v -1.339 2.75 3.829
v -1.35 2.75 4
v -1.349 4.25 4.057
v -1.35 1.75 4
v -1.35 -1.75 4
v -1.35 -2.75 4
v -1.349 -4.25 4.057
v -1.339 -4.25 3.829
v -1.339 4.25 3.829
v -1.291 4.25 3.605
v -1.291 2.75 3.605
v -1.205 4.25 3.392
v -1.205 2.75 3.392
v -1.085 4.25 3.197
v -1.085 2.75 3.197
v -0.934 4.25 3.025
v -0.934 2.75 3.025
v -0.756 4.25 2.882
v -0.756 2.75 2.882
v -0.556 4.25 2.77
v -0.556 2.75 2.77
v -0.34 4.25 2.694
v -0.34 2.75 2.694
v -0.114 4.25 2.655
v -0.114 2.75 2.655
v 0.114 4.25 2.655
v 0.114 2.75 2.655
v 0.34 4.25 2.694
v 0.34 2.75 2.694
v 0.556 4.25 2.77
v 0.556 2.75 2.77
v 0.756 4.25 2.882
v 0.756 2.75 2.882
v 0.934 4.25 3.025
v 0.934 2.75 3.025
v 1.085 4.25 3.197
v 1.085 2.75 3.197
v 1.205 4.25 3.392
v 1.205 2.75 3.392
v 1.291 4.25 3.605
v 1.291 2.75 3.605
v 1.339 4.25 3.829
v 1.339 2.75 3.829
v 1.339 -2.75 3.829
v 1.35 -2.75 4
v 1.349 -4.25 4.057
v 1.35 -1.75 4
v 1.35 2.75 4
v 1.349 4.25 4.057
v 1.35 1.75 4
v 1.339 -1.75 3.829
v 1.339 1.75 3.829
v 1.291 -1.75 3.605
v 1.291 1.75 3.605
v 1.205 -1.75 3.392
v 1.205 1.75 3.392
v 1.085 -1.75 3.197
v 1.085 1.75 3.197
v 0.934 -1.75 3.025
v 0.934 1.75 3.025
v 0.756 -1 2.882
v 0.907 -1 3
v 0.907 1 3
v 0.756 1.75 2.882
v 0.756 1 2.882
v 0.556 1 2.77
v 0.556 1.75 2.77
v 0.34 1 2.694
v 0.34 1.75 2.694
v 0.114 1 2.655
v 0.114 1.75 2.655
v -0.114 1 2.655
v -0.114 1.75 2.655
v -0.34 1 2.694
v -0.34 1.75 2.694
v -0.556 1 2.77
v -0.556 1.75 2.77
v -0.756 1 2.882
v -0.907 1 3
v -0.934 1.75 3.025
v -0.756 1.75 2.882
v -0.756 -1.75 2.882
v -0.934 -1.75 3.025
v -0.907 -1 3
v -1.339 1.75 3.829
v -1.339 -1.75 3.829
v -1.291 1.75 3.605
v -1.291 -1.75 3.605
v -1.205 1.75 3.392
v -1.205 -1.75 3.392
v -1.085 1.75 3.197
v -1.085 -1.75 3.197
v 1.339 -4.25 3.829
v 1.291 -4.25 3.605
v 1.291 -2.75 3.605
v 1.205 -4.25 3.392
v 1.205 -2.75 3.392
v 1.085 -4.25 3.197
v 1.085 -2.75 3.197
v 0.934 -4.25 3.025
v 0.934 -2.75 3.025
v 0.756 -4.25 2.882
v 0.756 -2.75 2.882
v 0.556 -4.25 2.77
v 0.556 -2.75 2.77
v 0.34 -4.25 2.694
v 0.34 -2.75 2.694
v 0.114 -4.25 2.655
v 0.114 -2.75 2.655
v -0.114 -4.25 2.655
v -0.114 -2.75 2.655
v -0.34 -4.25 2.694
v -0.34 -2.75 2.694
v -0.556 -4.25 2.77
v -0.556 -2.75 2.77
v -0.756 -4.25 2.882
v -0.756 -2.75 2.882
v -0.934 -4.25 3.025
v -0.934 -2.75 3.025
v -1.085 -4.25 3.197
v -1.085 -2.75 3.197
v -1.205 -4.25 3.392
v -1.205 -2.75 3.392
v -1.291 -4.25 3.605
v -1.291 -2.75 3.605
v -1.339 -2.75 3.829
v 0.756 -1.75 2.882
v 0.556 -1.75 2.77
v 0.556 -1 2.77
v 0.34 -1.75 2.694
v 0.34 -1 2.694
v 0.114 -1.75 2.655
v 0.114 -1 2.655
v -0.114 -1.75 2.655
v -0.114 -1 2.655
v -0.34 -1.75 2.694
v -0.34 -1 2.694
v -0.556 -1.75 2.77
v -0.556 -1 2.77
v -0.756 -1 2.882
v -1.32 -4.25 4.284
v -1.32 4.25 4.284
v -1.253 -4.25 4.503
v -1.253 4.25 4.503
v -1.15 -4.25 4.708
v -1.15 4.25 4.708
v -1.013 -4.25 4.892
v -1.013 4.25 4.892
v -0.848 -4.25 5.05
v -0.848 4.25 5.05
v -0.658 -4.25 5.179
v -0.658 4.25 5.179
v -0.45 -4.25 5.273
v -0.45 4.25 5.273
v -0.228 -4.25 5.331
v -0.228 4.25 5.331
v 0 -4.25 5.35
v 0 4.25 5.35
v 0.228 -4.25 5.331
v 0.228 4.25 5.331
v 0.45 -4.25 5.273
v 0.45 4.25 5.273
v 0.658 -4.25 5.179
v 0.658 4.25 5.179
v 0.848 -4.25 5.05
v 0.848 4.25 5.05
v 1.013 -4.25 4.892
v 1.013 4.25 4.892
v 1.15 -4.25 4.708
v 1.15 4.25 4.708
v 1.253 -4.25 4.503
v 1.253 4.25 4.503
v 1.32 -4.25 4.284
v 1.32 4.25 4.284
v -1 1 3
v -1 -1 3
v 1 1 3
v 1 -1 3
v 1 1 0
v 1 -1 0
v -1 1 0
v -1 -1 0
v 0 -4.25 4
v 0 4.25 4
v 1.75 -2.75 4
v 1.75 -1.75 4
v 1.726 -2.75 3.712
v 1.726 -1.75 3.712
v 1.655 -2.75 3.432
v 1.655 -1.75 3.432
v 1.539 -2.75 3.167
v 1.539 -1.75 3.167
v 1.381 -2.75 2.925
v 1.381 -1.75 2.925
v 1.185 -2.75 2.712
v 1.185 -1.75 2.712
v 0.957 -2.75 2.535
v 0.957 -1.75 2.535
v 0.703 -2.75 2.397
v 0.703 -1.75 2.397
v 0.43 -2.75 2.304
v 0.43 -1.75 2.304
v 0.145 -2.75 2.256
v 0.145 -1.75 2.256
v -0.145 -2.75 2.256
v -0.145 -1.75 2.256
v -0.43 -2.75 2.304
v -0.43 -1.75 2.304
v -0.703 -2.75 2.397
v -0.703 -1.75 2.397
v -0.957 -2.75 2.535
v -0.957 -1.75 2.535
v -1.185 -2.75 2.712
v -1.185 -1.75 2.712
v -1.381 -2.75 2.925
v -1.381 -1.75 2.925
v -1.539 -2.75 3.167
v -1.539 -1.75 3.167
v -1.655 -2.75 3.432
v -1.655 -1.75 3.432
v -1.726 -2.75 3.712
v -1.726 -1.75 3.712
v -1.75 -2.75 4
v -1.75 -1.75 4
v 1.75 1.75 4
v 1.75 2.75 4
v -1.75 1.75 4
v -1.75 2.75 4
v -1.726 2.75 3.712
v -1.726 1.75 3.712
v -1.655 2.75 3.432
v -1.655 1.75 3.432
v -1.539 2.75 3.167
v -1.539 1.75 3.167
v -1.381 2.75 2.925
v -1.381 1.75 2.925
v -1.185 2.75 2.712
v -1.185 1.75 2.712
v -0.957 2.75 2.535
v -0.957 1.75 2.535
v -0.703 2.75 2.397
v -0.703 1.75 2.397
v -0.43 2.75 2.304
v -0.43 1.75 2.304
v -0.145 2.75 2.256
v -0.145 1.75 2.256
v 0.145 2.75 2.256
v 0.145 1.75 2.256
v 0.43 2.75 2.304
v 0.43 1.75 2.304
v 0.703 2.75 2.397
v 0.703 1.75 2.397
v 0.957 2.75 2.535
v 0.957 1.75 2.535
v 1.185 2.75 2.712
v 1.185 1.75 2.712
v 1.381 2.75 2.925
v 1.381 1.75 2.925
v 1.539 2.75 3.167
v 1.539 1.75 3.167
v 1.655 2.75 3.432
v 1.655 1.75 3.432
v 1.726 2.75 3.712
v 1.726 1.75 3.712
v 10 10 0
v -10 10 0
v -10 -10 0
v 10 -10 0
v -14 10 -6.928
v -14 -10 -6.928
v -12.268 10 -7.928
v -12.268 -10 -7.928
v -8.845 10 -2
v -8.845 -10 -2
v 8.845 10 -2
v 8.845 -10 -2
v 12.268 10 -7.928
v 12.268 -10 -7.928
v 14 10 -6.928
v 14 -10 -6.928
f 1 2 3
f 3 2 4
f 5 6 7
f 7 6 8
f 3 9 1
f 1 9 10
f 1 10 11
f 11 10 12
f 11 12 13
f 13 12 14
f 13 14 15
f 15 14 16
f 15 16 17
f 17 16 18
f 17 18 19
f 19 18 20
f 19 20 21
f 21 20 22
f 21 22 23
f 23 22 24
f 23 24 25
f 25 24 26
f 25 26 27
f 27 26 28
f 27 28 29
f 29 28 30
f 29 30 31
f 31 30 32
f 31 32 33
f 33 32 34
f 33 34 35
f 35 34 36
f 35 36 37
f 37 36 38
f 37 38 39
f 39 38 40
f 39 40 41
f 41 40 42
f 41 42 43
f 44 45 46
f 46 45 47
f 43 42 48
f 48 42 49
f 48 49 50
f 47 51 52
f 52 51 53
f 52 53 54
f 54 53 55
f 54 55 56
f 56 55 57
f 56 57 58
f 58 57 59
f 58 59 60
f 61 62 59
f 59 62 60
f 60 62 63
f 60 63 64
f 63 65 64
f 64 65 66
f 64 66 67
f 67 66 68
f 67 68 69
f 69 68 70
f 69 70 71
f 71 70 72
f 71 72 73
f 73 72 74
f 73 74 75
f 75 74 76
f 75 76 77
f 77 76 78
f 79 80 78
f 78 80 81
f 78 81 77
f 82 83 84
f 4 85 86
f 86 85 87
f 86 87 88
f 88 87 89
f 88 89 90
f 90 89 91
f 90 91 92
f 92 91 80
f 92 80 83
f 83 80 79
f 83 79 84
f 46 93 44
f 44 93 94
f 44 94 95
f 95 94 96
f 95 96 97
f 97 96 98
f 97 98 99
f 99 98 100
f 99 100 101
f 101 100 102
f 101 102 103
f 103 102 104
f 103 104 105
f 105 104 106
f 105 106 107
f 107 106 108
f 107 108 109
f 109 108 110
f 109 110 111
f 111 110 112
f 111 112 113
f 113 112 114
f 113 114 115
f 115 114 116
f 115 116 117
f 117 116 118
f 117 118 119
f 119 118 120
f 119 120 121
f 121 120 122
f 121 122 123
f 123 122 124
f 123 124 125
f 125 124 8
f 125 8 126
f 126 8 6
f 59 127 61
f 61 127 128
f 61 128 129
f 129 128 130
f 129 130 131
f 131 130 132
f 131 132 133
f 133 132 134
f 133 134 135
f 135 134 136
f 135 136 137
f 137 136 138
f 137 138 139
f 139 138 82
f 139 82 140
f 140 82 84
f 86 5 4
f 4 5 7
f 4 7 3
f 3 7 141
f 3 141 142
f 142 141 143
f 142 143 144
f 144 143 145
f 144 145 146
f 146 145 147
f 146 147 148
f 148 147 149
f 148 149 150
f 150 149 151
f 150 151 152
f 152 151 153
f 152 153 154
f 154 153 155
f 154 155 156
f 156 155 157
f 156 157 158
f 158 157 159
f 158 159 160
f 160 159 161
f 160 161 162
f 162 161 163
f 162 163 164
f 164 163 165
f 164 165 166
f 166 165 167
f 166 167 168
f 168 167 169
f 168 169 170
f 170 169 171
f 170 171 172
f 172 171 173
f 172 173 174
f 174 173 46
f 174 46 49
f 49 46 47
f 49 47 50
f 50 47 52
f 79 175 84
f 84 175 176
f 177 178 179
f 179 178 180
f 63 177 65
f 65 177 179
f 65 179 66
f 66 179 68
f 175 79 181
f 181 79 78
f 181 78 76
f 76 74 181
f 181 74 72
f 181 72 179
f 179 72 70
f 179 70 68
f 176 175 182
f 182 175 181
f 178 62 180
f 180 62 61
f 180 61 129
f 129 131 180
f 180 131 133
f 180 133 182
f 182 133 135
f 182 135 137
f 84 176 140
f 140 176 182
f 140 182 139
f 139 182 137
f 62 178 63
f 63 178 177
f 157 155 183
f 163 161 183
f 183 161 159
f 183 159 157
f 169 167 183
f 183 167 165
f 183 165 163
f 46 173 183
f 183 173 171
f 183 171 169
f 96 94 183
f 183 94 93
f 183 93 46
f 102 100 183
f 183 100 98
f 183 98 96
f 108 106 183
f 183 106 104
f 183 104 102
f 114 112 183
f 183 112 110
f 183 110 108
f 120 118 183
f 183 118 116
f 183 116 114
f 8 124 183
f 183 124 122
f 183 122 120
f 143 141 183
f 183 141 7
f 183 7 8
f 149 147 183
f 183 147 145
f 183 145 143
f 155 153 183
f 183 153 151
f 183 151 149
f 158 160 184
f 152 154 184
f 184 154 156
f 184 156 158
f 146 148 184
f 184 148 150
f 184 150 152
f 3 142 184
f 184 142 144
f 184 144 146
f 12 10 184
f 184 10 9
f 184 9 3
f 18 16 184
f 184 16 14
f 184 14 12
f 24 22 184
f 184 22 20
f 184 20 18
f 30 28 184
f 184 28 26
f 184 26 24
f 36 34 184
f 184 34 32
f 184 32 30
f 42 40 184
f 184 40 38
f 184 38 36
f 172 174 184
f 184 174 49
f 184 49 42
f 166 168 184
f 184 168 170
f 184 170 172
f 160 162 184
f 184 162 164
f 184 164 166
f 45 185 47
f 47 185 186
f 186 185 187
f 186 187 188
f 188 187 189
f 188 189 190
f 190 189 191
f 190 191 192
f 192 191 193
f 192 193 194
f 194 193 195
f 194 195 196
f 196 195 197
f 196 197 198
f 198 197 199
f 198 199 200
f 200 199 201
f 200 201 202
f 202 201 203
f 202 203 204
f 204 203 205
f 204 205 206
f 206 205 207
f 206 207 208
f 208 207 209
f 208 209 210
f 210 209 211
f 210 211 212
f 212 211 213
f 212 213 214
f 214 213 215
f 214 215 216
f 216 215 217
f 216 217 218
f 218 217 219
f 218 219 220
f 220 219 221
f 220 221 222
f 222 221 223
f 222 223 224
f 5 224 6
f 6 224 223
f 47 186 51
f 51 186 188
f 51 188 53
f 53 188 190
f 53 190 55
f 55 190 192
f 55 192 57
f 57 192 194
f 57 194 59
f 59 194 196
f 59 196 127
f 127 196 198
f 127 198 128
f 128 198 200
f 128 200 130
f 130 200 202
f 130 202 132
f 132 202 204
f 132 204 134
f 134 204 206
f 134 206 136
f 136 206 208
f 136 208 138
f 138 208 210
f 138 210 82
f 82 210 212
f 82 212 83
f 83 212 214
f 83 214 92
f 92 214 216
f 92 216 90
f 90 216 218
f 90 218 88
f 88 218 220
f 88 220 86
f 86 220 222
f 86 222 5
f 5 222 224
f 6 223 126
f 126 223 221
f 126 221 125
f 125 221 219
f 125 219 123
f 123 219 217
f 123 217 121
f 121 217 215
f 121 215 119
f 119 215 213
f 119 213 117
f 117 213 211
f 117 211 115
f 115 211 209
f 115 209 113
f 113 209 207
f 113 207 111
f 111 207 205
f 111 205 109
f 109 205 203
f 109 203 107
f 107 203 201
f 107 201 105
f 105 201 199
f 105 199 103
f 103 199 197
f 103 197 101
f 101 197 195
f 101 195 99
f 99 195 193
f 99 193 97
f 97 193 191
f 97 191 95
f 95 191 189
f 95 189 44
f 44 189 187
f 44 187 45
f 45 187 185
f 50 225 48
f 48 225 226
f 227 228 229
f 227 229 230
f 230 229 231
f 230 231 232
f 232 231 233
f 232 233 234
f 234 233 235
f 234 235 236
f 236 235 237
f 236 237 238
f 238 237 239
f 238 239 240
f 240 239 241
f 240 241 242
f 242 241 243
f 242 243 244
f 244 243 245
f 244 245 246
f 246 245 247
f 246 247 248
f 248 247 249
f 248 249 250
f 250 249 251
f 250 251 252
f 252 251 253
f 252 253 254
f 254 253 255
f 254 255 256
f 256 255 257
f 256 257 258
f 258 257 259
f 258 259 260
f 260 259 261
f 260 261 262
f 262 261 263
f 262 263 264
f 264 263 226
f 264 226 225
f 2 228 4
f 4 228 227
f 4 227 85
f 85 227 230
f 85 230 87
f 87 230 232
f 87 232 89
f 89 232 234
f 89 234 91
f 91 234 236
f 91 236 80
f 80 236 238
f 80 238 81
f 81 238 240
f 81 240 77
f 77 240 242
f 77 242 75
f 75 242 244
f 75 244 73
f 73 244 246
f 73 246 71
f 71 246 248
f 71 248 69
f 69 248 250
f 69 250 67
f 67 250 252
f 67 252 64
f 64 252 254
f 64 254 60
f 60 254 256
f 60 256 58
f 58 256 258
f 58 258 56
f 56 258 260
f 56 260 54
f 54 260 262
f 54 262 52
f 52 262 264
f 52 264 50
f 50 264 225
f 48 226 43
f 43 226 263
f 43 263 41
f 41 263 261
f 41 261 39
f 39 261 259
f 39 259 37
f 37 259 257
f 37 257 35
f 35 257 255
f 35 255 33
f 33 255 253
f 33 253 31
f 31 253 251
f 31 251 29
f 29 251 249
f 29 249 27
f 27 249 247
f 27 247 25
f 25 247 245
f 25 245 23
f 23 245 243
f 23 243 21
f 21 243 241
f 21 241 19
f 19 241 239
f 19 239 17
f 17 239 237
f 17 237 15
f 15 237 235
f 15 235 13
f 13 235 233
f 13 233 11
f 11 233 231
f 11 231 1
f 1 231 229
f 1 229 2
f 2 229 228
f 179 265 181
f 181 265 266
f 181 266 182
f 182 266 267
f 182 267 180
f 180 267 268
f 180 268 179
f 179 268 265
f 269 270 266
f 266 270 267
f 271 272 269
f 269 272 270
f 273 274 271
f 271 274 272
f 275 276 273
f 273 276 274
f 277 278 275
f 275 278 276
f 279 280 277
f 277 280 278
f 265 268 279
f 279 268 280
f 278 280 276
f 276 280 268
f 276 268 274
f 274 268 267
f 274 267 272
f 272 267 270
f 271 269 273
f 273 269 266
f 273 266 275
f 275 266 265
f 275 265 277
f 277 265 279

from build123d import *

# Parameters (mm, degrees)
SKETCH_1_W           = 2
SKETCH_1_H           = 2
EXTRUDE_1_DEPTH      = 3
EXTRUDE_2_DEPTH      = 3.25
EXTRUDE_2_DEPTH_BACK = 5.25
SKETCH_2_R           = 1.35
EXTRUDE_5_DEPTH      = 1
EXTRUDE_START        = -1
EXTRUDE_6_DEPTH      = 1
EXTRUDE_7_DEPTH      = 10
EXTRUDE_7_DEPTH_BACK = 10


with BuildPart() as part:
    # 草图1 → 凸台-拉伸1 (new body)
    with BuildSketch(Plane.XY):
        Rectangle(SKETCH_1_W, SKETCH_1_H)
    extrude(amount=EXTRUDE_1_DEPTH)

    # 草图2 → 凸台-拉伸2 (add, two sides: drawn at the far end of the back side and taken through both)
    with BuildSketch(Plane(origin=(0, 1, 0), x_dir=(1, 0, 0), z_dir=(0, 1, 0)).offset(-EXTRUDE_2_DEPTH_BACK)):
        with Locations(Location((0, -4, 0), (0, 0, 270))):
            Circle(SKETCH_2_R)
    extrude(amount=EXTRUDE_2_DEPTH + EXTRUDE_2_DEPTH_BACK)

    # 草图6 → 凸台-拉伸5 (add)
    with BuildSketch(Plane(origin=(0, -2.75, 0), x_dir=(-1, 0, 0), z_dir=(0, -1, 0))):
        with BuildLine():
            Line((-1.75, -4), (1.75, -4))
            ThreePointArc((1.75, -4), (0, -2.25), (-1.75, -4))
        make_face()
    extrude(amount=-EXTRUDE_5_DEPTH)

    # 草图7 → 凸台-拉伸6 (add)
    with BuildSketch(Plane(origin=(0, 2.75, 0), x_dir=(1, 0, 0), z_dir=(0, 1, 0)).offset(EXTRUDE_START)):
        with BuildLine():
            Line((1.75, -4), (-1.75, -4))
            ThreePointArc((-1.75, -4), (0, -2.25), (1.75, -4))
        make_face()
    extrude(amount=EXTRUDE_6_DEPTH)

    # 草图12 → 凸台-拉伸7 (add, two sides: drawn at the far end of the back side and taken through both)
    with BuildSketch(Plane(origin=(0, 0, 0), x_dir=(1, 0, 0), z_dir=(0, 1, 0)).offset(-EXTRUDE_7_DEPTH_BACK)):
        Polygon((10, 0), (-10, 0), (-14, 6.92820323), (-12.267949192, 7.92820323), (-8.845299462, 2), (8.845299462, 2), (12.267949192, 7.92820323), (14, 6.92820323), align=None)
    extrude(amount=EXTRUDE_7_DEPTH + EXTRUDE_7_DEPTH_BACK)


solid = part.part
